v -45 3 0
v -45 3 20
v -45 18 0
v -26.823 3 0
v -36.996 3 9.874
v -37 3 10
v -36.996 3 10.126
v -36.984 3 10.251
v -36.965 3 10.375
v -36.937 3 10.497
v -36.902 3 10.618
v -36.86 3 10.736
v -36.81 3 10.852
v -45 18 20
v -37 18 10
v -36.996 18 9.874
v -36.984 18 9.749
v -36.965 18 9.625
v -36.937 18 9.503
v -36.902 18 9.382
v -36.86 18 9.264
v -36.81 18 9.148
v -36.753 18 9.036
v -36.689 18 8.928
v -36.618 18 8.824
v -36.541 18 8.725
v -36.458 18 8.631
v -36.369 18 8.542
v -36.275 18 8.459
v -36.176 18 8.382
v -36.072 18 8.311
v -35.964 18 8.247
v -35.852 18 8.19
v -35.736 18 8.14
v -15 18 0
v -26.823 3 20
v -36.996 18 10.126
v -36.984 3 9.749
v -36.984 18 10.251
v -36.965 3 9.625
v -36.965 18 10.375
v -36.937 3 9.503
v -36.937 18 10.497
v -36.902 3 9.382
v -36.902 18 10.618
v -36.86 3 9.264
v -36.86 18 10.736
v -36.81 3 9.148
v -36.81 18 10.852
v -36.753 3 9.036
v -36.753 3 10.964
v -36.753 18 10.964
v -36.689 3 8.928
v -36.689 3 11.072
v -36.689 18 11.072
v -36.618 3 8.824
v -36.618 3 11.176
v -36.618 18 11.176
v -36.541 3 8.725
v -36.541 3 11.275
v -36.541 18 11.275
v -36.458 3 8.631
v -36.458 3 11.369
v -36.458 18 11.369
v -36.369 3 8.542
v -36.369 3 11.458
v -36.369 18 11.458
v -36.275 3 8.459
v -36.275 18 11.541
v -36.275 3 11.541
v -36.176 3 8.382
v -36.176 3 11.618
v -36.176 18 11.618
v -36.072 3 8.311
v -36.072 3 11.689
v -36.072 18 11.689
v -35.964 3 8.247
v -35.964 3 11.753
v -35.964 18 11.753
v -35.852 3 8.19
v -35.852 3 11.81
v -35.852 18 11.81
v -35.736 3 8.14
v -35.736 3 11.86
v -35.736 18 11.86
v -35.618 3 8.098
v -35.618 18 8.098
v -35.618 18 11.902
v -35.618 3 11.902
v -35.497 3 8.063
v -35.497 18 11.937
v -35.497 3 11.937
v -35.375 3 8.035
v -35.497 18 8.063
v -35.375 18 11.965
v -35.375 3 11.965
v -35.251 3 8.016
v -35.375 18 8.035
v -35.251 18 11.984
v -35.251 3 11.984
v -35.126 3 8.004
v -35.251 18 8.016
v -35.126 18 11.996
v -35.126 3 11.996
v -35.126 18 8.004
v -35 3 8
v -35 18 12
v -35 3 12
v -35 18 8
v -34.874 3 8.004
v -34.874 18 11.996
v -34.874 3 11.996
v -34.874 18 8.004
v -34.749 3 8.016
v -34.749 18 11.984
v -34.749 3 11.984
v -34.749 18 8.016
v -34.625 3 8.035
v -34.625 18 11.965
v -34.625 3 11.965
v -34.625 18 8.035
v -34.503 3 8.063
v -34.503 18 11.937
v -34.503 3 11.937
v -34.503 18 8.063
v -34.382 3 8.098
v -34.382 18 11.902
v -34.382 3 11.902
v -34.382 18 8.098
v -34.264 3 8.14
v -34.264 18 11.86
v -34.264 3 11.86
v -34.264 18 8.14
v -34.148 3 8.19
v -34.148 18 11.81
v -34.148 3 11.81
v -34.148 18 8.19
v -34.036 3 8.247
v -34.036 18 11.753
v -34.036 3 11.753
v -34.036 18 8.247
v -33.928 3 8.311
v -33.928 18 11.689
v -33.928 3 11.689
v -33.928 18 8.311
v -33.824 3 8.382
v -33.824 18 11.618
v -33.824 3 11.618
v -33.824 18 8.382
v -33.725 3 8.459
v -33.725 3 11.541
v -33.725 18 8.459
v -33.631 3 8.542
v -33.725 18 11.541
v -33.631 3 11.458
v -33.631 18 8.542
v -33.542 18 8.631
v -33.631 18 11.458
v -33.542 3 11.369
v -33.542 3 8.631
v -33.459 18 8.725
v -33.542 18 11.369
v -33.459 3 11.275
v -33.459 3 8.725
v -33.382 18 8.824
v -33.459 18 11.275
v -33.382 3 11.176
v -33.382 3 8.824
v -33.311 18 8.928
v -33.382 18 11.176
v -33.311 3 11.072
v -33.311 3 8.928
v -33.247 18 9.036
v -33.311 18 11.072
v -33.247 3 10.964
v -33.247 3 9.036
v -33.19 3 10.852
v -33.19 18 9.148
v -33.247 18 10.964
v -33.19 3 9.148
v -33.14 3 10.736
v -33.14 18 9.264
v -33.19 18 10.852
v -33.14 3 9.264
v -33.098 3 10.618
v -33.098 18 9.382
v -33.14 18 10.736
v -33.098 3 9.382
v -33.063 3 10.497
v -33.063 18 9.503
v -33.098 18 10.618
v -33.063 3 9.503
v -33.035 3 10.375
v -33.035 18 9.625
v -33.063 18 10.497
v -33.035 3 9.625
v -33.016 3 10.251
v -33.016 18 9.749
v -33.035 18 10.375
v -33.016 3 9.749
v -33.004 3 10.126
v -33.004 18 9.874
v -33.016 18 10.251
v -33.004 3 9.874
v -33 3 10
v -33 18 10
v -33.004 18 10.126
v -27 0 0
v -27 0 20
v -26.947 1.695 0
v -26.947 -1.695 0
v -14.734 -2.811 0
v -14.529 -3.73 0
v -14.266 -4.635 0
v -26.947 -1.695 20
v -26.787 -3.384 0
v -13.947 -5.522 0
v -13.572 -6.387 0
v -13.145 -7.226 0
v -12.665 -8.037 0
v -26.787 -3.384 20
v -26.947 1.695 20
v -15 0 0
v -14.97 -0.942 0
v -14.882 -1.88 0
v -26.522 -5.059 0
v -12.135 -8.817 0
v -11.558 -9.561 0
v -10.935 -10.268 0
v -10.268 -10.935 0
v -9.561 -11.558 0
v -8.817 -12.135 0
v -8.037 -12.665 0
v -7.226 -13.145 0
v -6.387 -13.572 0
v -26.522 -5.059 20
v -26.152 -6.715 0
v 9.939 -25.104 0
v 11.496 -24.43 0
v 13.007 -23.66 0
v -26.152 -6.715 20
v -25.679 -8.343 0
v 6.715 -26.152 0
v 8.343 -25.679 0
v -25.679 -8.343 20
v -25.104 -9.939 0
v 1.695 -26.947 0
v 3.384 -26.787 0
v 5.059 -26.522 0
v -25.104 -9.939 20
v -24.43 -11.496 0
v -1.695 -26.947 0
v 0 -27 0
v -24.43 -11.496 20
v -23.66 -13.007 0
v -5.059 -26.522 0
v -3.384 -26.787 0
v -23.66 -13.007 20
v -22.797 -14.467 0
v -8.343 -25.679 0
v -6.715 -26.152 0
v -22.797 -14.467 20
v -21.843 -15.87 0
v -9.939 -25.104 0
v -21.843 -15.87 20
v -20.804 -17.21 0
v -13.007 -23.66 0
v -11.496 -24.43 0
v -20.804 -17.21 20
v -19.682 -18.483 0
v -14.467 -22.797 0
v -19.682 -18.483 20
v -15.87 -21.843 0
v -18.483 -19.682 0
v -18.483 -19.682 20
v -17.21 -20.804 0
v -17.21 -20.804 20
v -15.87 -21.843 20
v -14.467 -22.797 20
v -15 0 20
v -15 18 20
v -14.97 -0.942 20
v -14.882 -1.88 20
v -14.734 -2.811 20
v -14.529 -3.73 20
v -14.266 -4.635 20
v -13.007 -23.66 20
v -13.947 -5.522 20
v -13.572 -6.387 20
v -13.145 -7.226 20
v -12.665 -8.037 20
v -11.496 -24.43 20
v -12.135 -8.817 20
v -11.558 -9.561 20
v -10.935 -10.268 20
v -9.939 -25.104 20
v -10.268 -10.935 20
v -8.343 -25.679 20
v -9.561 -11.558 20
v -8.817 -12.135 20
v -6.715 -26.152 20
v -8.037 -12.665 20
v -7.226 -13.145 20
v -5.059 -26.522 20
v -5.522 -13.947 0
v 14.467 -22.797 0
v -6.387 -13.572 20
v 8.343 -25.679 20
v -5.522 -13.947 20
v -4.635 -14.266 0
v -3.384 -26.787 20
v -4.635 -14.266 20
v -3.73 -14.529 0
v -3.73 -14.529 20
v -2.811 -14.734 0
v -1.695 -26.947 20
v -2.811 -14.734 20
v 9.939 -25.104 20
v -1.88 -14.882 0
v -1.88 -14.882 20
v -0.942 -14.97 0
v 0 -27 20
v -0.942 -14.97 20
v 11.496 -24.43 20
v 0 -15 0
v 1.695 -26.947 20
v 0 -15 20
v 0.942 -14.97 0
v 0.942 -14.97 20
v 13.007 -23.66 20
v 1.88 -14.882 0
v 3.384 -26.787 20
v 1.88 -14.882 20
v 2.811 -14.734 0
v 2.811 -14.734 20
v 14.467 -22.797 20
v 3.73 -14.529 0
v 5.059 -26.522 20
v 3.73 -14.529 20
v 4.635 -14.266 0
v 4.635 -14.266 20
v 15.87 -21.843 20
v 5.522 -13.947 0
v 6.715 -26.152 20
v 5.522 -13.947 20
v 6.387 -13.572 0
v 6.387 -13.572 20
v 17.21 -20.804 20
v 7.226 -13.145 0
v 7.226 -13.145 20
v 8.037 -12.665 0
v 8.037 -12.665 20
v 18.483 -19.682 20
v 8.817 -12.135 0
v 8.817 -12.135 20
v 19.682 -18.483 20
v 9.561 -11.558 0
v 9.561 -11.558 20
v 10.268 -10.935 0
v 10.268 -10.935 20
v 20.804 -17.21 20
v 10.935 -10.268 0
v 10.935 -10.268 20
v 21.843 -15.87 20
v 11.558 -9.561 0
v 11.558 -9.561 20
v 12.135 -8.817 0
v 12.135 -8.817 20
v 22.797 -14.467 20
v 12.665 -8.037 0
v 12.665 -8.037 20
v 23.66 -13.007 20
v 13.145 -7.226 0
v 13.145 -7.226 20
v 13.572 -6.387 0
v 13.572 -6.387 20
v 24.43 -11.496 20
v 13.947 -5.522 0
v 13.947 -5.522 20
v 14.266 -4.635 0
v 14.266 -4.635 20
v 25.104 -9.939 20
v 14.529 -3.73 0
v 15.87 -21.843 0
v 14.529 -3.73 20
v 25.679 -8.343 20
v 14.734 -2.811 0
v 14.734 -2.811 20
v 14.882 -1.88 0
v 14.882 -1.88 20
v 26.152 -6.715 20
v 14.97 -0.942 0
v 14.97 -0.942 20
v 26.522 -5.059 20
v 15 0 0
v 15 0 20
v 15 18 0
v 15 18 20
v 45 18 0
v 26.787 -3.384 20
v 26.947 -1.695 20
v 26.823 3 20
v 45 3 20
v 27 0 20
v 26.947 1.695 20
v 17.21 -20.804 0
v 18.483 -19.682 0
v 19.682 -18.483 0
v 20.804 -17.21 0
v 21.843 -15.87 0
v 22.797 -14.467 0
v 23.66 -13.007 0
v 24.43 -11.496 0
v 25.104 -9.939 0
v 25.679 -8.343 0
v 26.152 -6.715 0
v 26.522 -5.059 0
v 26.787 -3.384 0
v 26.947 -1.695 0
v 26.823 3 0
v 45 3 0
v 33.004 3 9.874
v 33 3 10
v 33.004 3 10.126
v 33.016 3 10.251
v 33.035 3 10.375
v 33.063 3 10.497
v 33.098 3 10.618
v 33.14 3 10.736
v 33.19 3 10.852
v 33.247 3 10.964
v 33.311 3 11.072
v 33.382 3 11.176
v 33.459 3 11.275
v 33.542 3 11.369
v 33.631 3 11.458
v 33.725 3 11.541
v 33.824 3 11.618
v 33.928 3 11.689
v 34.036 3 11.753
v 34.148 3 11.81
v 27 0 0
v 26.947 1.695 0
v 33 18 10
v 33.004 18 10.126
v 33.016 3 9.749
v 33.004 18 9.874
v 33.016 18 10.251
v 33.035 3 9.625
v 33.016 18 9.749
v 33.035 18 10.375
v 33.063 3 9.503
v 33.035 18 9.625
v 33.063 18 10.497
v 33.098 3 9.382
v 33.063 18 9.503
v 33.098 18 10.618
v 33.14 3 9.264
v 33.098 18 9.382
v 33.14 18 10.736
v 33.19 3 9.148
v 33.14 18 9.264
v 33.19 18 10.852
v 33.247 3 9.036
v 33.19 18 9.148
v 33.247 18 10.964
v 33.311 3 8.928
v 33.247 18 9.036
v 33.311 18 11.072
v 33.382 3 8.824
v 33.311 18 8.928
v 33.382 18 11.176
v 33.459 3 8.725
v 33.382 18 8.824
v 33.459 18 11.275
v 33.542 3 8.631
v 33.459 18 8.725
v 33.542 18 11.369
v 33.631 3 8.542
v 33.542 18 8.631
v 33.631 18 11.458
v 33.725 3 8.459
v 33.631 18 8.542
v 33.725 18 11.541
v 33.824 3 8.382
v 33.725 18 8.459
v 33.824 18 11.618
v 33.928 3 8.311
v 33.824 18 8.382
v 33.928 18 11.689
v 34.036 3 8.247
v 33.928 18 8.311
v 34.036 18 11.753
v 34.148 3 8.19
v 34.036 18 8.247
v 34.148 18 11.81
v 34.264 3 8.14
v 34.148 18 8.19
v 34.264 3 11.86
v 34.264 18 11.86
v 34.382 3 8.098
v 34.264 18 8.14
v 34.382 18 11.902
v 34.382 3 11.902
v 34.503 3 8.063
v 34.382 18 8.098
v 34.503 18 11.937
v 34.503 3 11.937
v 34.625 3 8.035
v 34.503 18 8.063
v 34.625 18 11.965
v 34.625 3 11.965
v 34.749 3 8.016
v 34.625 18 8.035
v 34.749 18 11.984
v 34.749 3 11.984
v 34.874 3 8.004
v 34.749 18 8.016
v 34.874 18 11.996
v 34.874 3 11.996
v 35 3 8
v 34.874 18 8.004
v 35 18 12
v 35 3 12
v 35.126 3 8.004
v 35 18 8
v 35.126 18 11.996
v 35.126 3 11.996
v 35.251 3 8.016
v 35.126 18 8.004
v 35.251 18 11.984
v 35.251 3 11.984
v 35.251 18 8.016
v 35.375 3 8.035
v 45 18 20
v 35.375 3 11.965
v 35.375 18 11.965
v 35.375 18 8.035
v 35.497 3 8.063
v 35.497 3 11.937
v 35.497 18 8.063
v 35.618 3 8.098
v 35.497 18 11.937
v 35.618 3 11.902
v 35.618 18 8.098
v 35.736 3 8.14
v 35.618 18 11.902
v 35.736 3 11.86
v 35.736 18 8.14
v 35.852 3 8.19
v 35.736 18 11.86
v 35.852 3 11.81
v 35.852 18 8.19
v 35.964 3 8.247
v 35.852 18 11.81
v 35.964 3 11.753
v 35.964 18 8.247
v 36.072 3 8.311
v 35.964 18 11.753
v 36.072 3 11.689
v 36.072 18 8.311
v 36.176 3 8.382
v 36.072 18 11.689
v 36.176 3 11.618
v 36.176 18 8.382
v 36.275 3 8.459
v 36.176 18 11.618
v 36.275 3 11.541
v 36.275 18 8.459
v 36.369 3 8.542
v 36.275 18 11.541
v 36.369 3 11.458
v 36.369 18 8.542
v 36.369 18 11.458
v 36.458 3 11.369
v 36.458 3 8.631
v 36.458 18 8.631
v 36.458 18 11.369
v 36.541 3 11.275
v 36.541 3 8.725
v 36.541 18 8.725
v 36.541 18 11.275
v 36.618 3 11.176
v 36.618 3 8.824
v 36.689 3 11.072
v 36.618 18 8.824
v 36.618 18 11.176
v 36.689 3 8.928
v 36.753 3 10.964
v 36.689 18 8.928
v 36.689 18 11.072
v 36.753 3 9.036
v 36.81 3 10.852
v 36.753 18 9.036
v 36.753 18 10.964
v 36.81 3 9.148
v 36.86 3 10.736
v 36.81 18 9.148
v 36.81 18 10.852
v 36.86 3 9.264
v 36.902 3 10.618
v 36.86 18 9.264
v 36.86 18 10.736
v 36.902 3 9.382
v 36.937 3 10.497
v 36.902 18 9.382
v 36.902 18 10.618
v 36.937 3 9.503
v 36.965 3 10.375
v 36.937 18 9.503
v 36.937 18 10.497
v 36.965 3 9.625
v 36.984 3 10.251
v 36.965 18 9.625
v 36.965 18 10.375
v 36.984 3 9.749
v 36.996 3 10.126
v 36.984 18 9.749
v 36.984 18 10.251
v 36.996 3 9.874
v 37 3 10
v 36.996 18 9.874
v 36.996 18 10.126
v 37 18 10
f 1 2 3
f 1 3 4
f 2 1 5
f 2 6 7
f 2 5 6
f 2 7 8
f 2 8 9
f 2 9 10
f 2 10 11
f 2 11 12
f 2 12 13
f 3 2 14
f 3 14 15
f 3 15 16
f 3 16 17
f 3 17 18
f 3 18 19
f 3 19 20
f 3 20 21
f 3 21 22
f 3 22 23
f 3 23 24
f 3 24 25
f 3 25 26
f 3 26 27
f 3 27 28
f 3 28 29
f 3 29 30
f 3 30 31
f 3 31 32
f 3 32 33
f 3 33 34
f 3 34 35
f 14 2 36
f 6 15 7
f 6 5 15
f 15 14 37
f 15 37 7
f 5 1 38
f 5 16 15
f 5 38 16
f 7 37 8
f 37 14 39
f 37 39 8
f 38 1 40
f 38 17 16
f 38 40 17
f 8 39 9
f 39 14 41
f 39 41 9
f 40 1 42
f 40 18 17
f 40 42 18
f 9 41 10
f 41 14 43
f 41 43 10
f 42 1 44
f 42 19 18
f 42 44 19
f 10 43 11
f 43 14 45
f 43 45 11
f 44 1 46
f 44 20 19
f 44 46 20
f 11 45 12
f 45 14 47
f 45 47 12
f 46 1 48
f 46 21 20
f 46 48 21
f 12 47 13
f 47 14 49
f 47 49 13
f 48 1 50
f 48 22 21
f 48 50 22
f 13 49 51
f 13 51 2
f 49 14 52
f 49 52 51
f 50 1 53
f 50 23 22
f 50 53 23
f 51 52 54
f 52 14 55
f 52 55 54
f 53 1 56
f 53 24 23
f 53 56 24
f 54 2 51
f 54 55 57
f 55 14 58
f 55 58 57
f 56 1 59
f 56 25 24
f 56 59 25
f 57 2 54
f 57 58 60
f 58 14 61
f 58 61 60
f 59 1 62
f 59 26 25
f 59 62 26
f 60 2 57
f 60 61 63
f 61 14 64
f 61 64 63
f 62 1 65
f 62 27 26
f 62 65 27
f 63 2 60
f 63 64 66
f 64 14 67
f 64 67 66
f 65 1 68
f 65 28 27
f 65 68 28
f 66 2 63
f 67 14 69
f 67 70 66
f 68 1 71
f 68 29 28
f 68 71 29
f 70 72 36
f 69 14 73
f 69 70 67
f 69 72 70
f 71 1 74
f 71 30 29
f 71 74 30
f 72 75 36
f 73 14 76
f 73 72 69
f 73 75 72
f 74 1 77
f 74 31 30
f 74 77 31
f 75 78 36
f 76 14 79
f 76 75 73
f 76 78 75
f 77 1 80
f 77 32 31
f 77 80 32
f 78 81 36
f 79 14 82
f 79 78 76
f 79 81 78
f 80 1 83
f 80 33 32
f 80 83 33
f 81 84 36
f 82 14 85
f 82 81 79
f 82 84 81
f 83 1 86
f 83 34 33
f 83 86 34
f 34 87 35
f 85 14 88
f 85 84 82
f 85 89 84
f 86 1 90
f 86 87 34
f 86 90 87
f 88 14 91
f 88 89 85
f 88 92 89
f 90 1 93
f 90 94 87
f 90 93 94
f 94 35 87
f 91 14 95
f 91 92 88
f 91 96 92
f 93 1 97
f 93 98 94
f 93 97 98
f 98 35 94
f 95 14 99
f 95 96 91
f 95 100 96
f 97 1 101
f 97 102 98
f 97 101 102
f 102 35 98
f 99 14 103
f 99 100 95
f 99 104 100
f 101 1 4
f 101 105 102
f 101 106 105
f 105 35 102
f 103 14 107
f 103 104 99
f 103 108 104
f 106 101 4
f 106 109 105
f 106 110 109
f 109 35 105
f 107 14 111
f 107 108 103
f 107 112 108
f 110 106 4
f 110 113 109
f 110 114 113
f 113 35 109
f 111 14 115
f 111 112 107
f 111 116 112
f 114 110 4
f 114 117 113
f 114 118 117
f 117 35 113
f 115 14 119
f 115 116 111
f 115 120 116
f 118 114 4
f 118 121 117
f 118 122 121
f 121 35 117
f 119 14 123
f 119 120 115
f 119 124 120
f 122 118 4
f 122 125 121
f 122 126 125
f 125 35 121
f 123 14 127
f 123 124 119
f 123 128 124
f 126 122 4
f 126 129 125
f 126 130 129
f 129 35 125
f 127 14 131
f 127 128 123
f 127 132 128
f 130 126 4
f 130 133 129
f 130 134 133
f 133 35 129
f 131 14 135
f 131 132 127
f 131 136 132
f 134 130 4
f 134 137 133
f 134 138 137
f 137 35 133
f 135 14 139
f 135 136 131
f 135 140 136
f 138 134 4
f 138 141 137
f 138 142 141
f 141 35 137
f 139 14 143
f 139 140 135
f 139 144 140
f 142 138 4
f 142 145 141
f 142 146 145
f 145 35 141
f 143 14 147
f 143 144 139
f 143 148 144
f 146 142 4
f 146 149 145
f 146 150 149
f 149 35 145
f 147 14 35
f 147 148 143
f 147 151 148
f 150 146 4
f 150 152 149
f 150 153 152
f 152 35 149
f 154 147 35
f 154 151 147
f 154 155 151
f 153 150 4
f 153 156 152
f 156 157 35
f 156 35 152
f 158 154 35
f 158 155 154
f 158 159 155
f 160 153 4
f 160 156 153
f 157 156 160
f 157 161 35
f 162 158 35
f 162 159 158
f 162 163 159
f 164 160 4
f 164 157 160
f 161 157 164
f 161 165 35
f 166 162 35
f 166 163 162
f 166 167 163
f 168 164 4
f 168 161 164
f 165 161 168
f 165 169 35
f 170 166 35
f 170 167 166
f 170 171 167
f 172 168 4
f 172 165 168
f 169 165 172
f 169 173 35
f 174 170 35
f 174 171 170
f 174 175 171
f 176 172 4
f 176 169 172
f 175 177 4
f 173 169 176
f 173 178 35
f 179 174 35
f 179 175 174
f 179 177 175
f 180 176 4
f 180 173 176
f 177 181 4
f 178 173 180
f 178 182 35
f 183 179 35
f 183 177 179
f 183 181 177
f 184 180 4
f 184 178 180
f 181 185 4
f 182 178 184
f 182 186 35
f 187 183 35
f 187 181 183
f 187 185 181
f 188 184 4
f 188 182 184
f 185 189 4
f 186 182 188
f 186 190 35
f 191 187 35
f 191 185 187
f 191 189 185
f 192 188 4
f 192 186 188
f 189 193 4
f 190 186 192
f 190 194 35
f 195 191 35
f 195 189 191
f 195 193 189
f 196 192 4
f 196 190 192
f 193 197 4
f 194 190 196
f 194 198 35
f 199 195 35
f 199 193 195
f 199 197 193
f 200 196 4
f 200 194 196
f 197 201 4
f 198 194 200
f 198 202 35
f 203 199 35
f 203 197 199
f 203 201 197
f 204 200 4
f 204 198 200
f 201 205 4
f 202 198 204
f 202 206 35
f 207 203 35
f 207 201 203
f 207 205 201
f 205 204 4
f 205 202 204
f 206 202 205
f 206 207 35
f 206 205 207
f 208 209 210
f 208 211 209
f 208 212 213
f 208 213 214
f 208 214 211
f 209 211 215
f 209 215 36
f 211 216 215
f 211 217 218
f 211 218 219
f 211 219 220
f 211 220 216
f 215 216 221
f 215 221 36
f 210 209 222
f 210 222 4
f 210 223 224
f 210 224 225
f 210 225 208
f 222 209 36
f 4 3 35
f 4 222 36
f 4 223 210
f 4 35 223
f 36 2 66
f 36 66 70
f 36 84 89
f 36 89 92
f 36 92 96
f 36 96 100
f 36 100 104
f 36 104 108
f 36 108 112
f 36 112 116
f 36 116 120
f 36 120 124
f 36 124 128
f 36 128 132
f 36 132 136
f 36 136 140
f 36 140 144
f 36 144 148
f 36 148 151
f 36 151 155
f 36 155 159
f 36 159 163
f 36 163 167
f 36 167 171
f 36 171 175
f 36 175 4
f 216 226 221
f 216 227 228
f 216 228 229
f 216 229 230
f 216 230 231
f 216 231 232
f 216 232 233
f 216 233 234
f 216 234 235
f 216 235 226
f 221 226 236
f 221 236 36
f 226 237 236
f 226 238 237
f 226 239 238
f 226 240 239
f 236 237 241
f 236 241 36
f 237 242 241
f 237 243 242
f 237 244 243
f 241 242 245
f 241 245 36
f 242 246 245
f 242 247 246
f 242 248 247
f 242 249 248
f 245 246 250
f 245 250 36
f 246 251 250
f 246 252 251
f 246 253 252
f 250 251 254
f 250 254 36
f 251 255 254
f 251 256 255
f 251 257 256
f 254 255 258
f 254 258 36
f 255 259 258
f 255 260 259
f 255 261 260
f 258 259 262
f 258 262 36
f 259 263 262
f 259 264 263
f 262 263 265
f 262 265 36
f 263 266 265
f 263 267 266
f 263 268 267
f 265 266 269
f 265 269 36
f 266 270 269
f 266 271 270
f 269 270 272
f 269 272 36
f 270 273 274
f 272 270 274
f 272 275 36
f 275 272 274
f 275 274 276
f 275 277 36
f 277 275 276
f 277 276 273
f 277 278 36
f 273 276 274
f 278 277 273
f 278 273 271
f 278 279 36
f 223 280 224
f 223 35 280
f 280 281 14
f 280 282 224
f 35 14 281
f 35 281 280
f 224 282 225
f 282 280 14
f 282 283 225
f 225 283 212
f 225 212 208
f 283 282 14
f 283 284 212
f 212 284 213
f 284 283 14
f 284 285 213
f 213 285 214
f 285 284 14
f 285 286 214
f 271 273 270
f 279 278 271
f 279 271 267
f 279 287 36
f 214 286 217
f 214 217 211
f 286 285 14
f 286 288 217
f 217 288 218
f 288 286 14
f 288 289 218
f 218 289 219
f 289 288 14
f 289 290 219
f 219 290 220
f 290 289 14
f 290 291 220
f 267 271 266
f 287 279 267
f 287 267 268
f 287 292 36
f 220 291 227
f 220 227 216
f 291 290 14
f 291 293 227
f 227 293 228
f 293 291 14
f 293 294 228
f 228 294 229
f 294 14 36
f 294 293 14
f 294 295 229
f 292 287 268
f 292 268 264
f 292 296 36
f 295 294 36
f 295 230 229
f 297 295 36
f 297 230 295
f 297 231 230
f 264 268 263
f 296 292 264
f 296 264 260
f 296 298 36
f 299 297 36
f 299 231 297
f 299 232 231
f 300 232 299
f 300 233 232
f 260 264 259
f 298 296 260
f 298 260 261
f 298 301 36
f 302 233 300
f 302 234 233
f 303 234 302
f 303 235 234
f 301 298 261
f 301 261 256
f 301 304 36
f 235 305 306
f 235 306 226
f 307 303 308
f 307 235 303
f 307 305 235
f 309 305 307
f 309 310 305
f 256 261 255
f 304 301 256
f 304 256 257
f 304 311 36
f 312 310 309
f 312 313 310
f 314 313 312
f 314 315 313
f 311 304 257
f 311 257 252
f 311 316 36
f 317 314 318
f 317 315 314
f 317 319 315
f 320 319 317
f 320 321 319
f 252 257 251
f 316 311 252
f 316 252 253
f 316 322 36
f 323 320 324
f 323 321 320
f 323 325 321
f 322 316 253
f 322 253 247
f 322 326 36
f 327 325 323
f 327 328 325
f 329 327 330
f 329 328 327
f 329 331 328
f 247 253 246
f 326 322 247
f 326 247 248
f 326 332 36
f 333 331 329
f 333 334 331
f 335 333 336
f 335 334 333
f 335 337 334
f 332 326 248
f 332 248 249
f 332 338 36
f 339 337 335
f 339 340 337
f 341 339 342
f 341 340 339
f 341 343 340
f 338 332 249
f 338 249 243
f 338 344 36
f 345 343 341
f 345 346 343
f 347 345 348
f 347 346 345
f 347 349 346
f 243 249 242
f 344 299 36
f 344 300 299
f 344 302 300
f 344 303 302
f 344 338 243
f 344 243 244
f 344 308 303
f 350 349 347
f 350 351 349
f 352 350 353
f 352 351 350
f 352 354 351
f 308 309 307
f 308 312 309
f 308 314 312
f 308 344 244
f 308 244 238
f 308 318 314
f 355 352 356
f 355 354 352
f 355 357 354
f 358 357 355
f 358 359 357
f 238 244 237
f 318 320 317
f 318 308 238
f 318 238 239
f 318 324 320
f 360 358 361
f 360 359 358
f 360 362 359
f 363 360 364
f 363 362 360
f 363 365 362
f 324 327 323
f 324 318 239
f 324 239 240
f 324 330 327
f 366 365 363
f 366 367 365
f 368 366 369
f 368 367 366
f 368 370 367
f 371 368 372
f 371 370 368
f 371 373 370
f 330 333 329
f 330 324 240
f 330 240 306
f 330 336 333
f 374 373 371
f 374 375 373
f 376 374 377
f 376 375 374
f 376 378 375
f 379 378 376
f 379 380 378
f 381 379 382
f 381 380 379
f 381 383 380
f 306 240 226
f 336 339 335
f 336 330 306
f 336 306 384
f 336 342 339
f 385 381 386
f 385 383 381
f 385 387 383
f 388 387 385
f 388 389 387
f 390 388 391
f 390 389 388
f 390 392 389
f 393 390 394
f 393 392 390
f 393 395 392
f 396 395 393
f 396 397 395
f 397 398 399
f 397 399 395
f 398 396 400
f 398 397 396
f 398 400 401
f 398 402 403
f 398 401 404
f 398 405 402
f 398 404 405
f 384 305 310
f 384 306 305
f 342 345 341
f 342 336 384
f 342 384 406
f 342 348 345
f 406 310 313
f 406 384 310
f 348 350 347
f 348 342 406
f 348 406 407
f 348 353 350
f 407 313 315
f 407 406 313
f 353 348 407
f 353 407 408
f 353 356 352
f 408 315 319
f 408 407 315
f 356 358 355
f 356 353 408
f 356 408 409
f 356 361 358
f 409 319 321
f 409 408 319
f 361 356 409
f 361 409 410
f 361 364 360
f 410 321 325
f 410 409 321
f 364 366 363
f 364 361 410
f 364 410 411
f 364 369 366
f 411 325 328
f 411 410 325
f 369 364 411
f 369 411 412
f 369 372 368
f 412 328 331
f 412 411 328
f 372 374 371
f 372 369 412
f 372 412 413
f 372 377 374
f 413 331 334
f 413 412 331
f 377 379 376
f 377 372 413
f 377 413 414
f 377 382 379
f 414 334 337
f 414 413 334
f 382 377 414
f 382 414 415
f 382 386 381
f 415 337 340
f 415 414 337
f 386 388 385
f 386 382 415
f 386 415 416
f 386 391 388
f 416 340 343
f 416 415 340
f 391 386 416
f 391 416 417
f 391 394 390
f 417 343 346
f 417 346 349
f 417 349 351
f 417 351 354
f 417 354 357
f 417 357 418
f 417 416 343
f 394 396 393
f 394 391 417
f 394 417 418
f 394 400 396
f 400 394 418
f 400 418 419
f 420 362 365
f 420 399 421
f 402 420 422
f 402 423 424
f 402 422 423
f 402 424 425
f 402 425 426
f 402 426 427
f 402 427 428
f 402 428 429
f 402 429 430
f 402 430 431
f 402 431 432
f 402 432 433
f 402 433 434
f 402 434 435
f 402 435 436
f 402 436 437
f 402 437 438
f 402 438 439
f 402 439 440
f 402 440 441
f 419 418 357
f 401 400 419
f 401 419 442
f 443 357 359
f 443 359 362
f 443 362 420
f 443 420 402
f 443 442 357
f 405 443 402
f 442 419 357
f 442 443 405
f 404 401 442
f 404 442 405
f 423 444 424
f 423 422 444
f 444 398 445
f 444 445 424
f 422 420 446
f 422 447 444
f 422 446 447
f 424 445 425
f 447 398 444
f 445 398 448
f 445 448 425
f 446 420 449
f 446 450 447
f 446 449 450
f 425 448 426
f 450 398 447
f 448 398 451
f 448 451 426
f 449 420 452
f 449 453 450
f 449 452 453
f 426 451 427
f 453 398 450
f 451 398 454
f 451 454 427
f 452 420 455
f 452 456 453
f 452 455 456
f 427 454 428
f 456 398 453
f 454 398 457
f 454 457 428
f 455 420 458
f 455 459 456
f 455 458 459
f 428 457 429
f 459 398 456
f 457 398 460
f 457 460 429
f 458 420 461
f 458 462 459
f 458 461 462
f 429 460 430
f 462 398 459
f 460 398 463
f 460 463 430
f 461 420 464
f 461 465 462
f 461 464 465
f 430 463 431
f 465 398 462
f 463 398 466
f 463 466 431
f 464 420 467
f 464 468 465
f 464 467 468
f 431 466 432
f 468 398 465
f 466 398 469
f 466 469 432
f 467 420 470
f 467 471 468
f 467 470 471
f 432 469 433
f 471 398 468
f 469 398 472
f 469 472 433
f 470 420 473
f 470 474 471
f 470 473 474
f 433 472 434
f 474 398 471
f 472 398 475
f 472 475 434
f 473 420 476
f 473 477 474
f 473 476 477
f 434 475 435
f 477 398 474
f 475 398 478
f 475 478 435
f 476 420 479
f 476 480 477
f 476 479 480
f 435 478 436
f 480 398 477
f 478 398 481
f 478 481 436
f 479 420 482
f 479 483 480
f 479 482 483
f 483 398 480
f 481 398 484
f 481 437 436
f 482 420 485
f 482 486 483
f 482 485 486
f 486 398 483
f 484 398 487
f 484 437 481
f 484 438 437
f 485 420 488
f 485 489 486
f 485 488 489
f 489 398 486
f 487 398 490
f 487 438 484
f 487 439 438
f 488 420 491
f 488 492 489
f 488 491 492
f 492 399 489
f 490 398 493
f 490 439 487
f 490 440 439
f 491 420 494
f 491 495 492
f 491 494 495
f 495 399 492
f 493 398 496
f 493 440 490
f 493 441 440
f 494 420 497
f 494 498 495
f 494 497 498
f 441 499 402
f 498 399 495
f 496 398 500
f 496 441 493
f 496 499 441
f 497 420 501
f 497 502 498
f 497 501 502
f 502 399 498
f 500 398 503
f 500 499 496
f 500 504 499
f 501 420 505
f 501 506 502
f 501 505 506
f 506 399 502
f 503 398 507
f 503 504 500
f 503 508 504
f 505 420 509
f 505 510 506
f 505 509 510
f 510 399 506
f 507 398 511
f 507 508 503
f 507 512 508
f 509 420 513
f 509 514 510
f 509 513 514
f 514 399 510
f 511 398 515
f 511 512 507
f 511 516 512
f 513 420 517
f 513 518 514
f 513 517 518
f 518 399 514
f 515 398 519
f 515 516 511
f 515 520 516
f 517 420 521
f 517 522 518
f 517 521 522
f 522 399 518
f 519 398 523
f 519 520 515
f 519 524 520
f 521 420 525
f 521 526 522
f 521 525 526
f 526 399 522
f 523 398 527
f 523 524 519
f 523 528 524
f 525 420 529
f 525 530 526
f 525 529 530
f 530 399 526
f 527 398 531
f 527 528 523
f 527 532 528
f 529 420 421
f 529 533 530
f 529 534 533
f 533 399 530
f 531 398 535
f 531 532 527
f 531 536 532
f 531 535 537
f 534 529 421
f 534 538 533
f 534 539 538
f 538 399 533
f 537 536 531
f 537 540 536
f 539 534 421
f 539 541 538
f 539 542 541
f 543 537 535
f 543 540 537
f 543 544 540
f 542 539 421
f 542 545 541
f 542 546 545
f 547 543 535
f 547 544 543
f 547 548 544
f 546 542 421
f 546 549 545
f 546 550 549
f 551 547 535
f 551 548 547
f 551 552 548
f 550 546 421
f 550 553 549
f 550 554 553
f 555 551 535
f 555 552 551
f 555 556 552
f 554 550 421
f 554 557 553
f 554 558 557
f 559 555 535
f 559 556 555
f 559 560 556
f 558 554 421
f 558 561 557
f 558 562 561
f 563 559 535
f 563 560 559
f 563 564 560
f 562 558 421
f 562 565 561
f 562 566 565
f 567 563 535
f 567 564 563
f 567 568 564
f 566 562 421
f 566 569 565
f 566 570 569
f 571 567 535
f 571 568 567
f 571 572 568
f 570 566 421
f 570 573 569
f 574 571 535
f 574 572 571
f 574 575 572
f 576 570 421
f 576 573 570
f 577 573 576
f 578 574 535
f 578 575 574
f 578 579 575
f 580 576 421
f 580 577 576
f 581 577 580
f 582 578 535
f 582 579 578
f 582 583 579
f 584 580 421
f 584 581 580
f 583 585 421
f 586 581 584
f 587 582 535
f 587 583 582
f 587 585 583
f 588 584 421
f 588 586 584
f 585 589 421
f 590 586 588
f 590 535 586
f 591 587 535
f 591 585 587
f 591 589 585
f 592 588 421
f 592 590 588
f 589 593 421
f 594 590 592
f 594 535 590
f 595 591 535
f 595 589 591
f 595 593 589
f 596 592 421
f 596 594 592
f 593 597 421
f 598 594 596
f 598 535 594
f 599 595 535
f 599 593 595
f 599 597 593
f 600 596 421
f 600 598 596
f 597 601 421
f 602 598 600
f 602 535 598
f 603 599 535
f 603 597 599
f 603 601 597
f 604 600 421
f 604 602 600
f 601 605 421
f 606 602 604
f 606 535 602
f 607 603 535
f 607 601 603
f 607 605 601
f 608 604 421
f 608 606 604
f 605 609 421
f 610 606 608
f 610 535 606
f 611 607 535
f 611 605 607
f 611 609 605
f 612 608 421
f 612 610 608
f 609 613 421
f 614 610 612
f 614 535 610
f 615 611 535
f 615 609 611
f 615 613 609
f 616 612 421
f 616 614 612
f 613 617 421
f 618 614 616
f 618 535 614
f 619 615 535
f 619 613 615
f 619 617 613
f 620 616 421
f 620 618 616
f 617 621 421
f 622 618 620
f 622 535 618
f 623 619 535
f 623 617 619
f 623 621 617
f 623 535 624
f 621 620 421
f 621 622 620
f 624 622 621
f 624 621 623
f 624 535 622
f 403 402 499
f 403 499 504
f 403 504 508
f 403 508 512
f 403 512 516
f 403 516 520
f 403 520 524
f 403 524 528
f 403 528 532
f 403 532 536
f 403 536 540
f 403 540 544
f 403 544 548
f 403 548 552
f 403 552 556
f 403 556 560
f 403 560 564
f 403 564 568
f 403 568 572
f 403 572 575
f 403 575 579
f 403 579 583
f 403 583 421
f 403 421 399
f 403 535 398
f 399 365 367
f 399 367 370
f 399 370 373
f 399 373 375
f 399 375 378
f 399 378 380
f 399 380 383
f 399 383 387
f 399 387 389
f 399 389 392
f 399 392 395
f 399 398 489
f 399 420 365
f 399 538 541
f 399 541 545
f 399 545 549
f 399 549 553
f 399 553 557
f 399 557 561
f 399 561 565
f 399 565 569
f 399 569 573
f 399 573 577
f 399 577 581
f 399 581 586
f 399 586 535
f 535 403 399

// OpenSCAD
$fn=100;
difference() {
    union() {
        cylinder(h=20, r=27);
        translate([-45, 3, 0])
            cube([90, 15, 20]);
    }
    translate([-45, 18, -1])
        cube([90, 10, 22]);
    translate([0,0,-1])
        cylinder(h=22, r=15);
    translate([-15,0,-1])
        cube([30, 30, 22]);
    translate([-35, 0, 10])
        rotate([-90, 0, 0])
            cylinder(h=50, r=2);
    translate([35, 0, 10])
        rotate([-90, 0, 0])
            cylinder(h=50, r=2);
}
